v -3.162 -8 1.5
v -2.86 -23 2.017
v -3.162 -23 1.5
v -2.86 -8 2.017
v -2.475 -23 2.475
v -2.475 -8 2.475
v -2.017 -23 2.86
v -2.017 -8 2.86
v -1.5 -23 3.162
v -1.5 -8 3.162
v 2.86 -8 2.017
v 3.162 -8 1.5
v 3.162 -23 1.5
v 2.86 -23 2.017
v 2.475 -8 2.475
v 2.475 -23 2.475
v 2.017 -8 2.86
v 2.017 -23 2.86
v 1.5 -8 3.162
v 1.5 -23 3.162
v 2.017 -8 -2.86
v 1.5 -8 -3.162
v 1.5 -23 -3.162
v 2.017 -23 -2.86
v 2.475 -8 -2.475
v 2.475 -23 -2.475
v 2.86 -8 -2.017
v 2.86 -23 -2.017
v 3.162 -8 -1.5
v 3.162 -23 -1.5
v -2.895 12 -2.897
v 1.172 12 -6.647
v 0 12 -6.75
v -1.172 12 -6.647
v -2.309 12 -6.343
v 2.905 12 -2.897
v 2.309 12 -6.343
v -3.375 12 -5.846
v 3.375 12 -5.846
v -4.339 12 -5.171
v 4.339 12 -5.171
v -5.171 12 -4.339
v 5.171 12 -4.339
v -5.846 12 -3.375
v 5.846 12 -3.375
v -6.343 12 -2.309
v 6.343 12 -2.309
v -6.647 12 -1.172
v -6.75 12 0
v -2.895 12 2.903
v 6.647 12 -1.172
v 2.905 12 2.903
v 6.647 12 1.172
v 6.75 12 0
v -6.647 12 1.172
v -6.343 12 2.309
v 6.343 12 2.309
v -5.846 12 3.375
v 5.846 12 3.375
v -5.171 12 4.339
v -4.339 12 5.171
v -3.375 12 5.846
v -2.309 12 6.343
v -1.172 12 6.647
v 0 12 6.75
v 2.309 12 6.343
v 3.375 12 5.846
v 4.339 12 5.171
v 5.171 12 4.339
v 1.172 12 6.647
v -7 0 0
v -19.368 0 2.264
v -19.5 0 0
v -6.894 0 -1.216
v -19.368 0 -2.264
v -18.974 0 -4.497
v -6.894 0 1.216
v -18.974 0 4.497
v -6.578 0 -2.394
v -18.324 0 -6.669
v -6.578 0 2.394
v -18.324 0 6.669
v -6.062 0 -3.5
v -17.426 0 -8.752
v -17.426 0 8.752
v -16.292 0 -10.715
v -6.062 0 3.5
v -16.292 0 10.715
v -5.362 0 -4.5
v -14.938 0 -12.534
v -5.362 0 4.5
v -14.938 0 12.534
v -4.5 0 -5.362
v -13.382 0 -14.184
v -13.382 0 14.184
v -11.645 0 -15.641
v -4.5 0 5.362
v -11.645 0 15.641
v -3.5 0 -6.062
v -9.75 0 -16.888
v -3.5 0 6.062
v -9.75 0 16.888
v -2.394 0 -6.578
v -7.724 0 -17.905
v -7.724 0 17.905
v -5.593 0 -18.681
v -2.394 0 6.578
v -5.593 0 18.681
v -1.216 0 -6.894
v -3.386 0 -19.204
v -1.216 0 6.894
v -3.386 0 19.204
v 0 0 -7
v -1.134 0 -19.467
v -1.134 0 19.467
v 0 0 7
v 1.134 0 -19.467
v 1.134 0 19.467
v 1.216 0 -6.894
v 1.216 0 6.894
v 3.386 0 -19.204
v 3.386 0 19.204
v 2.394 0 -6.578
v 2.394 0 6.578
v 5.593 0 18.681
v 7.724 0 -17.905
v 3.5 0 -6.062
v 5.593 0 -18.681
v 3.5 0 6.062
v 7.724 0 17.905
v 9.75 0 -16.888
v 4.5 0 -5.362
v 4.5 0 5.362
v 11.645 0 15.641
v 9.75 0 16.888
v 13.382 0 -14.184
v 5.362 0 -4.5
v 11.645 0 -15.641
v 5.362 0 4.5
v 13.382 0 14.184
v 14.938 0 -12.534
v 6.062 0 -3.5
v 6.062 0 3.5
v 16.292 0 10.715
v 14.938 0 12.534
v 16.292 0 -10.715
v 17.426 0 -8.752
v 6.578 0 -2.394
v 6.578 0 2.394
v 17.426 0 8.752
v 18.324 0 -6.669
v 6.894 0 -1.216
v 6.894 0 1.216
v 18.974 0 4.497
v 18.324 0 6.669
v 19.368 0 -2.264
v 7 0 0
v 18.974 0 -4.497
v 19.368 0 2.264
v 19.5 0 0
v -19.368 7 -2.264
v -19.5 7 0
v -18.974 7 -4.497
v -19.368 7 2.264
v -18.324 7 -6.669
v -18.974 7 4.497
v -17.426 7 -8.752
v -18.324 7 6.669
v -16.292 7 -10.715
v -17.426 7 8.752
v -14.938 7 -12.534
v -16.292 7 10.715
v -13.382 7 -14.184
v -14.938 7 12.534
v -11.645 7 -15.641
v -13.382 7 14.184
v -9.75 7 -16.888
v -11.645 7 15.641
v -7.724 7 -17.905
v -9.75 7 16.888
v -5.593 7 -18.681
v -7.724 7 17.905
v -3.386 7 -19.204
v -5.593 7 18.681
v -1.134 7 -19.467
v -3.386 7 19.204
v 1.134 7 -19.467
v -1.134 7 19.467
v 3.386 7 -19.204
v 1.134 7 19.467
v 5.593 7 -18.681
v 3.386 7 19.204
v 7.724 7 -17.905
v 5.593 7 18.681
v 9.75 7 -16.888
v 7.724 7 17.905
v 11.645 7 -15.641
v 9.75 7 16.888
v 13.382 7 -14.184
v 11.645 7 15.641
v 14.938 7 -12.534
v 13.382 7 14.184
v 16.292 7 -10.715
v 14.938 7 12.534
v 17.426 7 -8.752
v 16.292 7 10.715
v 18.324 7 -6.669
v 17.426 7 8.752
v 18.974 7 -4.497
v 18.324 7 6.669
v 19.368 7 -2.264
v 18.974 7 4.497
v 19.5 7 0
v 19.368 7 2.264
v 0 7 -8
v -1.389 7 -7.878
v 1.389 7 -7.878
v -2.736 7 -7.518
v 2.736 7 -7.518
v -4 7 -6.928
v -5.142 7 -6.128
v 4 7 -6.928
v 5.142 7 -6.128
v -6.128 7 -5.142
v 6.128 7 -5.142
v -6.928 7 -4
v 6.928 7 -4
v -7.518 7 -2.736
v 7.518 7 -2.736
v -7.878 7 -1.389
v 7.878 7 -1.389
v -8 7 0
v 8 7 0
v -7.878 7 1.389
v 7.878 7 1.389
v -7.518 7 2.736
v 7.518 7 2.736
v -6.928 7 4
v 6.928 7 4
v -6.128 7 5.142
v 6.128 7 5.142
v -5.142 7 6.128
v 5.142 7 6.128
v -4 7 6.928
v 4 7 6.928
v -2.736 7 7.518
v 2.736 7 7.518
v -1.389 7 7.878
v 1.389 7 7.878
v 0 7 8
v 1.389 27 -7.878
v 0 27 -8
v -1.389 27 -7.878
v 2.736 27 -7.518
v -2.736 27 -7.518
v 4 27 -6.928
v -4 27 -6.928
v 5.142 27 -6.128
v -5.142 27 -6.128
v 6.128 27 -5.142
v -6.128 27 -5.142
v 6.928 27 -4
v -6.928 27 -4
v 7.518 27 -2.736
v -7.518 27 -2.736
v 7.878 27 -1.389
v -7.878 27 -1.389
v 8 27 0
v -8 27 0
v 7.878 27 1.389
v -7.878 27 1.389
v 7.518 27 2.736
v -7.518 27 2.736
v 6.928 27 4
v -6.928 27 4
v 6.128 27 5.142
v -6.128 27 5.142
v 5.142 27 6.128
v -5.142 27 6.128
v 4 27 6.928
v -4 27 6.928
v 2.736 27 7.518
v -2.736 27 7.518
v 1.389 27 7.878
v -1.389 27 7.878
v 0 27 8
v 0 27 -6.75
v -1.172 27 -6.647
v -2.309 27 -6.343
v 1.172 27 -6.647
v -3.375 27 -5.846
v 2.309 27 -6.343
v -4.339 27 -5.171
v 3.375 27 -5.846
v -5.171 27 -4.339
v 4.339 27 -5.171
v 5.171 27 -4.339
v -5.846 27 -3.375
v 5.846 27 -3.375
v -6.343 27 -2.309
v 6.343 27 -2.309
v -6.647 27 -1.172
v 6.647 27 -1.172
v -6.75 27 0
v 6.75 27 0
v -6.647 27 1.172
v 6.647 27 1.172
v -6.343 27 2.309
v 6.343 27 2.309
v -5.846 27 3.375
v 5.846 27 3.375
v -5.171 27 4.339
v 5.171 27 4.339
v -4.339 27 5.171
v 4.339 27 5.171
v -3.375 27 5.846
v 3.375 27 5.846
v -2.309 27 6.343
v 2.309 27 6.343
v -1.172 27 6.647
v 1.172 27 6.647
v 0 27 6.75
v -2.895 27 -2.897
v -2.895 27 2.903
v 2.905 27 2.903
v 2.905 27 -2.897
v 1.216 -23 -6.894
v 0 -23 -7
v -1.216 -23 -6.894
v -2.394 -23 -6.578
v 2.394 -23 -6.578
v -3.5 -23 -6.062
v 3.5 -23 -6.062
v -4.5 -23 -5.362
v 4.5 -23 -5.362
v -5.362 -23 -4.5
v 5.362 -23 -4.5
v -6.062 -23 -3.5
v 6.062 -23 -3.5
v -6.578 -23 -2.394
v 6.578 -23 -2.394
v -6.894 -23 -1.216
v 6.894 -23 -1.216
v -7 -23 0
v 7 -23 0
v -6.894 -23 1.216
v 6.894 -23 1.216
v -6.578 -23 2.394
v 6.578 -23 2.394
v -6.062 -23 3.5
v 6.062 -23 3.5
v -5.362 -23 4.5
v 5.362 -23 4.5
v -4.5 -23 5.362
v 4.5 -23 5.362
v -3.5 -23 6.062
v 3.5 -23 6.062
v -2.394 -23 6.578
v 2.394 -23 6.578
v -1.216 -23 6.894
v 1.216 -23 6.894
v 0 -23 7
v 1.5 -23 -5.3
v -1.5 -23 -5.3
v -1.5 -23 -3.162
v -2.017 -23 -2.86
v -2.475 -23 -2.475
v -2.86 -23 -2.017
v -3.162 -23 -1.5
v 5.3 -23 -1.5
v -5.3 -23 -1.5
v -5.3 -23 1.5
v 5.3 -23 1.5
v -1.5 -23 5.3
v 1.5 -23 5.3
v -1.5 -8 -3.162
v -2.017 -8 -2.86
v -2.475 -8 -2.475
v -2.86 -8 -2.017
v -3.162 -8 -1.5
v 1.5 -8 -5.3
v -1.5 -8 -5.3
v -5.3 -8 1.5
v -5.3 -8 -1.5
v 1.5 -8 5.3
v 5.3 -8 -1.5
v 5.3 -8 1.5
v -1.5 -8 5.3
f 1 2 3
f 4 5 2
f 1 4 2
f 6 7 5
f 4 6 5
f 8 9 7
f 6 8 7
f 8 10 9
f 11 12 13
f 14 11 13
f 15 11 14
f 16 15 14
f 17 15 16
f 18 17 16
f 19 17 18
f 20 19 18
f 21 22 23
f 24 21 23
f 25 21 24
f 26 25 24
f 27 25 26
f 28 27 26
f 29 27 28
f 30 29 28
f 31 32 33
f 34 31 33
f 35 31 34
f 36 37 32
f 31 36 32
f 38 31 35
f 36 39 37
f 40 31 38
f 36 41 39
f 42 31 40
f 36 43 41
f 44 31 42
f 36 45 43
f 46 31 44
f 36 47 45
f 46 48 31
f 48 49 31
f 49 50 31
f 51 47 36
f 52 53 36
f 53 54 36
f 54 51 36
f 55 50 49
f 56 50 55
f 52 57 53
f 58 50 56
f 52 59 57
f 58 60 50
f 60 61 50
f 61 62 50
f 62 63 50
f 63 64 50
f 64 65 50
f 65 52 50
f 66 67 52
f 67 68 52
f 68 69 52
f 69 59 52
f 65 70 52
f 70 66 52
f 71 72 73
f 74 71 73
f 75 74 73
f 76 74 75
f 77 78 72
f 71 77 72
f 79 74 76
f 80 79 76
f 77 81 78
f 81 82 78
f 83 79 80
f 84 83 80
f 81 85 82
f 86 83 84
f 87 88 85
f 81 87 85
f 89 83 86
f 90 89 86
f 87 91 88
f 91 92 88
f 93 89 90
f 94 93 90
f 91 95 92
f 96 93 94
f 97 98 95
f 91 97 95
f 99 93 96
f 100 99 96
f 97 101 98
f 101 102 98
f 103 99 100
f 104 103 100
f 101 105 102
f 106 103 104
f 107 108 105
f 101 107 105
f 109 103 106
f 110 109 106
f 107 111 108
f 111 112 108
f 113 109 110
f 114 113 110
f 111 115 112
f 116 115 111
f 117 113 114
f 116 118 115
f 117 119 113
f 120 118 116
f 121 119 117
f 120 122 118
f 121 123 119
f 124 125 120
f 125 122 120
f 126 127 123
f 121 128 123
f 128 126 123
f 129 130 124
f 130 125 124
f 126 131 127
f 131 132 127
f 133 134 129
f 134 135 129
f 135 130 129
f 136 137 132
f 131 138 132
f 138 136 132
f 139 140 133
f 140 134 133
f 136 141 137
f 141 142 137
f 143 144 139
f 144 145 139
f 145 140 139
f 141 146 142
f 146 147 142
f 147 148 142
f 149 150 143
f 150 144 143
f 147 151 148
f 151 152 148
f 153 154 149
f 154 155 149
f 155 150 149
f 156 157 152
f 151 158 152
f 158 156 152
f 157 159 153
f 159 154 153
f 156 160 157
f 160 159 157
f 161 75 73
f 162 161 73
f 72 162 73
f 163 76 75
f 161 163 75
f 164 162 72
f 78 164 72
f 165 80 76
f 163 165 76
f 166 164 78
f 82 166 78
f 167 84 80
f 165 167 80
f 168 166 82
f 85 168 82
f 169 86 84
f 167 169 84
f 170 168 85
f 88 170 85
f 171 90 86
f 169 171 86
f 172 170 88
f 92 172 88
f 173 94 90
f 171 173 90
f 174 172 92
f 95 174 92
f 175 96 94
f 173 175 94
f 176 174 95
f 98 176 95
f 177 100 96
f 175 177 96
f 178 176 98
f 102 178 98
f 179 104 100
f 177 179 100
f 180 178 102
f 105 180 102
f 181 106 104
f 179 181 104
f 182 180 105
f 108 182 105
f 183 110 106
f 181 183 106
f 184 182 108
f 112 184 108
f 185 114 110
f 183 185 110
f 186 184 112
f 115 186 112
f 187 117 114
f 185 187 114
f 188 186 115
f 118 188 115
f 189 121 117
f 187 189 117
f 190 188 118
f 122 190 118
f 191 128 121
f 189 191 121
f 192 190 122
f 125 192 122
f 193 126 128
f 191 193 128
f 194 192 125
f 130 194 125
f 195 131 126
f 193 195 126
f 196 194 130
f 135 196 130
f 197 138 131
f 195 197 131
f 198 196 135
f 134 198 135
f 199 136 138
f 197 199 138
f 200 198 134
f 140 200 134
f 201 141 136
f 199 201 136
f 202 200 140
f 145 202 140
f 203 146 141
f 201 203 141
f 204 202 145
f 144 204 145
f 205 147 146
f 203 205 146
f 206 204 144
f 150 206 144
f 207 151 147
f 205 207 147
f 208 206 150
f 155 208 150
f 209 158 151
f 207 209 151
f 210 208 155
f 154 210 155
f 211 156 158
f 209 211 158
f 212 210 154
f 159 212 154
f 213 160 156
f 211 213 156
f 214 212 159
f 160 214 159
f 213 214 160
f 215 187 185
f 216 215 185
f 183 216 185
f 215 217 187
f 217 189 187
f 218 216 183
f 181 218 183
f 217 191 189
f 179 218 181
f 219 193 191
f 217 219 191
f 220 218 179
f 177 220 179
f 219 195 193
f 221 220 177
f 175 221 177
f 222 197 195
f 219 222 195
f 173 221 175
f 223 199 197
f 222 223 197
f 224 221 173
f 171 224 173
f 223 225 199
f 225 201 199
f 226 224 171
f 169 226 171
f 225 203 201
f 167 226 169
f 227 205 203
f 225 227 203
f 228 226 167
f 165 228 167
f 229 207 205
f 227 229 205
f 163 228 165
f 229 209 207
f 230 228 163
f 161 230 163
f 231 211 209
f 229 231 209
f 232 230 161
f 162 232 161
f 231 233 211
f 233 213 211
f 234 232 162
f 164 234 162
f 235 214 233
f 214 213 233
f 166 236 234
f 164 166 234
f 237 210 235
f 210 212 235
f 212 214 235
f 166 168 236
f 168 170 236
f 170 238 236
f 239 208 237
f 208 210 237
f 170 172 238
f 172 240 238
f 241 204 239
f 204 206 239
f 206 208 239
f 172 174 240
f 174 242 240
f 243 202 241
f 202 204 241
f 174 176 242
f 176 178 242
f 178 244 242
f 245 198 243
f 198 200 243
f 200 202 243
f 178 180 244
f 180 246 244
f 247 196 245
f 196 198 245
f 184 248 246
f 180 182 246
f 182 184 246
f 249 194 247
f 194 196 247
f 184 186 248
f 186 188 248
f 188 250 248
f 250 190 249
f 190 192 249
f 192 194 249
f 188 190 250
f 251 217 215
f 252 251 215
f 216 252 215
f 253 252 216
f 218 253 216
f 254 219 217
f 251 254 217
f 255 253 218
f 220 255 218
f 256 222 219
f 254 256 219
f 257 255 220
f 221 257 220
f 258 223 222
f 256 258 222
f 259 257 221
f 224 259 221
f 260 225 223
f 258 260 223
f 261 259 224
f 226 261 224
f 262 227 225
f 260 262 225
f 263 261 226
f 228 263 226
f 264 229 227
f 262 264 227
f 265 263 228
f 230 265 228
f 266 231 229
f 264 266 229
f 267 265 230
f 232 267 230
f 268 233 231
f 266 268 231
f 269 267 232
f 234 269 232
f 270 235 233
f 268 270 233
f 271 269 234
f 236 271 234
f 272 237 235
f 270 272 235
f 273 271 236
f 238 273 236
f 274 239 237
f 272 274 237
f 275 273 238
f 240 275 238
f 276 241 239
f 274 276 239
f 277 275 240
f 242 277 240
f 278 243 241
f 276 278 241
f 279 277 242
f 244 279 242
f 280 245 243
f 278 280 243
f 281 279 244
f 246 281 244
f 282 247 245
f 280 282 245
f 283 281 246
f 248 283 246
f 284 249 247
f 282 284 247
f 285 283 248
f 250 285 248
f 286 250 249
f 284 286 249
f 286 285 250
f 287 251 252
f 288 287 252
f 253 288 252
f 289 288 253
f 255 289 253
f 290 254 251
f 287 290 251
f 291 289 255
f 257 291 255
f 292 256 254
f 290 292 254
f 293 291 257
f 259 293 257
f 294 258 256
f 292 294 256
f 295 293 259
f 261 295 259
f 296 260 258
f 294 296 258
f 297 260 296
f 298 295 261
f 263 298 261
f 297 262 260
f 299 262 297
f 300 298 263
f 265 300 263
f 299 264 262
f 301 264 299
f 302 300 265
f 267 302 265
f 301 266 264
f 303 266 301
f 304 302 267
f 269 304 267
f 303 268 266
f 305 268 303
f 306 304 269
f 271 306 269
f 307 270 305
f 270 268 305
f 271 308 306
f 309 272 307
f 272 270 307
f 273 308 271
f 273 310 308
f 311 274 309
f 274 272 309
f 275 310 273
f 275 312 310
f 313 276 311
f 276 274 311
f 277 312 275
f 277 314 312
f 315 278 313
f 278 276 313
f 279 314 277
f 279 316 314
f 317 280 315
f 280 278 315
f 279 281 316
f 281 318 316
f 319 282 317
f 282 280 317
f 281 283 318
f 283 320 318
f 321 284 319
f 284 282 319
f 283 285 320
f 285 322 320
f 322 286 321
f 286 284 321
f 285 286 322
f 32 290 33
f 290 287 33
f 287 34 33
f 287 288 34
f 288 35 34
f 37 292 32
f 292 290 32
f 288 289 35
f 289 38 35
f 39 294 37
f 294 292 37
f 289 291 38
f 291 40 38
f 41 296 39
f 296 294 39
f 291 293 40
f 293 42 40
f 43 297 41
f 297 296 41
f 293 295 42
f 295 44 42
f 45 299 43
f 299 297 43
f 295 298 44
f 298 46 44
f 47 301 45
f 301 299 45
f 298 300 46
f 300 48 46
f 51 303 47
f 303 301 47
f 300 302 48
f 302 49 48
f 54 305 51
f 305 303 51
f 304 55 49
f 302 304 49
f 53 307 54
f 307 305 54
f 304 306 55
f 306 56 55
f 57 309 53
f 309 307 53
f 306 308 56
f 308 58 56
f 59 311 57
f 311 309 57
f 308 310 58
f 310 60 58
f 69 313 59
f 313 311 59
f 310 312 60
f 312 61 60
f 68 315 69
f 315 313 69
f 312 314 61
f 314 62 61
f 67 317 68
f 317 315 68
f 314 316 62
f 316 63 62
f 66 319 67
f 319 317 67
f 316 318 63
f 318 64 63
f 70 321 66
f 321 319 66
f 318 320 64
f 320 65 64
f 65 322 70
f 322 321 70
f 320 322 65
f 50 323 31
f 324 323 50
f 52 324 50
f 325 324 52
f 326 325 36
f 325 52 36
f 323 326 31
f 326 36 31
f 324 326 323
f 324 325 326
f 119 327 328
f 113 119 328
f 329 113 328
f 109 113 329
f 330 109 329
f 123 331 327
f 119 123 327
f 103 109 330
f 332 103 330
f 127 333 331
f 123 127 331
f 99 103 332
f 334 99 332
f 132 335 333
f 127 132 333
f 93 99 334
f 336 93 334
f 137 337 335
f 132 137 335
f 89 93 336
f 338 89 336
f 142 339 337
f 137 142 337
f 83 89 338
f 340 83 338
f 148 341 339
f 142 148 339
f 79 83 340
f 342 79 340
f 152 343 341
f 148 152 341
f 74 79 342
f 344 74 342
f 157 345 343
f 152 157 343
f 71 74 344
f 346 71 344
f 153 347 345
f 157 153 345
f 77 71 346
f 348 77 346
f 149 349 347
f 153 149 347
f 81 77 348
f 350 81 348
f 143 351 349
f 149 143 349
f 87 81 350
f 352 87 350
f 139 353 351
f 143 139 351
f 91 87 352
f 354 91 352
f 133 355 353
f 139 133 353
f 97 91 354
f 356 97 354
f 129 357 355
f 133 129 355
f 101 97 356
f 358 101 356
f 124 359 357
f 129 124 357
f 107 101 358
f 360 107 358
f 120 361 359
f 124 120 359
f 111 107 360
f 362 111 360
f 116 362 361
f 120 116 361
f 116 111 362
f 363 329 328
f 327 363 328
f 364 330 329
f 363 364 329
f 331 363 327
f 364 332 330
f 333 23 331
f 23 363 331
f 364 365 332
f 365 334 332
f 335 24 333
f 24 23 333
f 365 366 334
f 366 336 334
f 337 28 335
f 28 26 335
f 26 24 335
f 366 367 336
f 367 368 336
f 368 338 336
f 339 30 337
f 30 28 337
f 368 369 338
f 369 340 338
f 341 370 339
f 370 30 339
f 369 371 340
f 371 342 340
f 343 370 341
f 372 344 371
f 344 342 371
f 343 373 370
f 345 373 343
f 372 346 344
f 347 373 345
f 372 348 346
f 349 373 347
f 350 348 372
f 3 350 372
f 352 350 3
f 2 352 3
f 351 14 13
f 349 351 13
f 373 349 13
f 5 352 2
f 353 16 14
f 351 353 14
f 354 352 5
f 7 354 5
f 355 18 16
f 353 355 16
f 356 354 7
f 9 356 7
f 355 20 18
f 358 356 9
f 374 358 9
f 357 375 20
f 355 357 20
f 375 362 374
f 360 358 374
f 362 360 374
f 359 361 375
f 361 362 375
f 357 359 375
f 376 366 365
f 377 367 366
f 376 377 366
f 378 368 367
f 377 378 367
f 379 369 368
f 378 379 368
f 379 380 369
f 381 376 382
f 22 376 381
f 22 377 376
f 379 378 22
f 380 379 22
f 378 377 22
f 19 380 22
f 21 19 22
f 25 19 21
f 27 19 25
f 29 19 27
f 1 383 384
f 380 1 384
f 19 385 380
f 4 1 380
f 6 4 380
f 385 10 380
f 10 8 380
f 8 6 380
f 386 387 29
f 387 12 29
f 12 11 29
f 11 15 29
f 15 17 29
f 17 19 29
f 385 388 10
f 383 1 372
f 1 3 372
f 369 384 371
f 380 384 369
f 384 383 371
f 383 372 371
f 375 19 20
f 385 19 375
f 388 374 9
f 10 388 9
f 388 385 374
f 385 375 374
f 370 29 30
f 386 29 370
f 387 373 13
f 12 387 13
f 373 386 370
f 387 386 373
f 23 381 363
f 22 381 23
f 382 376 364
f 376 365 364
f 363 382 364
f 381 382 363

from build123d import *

# Parameters (mm, degrees)
SKETCH3_R           = 6.75
CUT_EXTRUDE1_DEPTH  = 15
SKETCH4_W           = 5.8
SKETCH4_H           = 5.8
BOSS_EXTRUDE1_DEPTH = 15
SKETCH6_R           = 7
BOSS_EXTRUDE2_DEPTH = 23
SKETCH7_R           = 3.5
CUT_EXTRUDE2_DEPTH  = 15
CUT_EXTRUDE3_DEPTH  = 15


with BuildPart() as part:
    # Sketch2 → Revolve2 (revolve)
    with BuildSketch(Plane.XY):
        Polygon((19.5, 0), (19.5, 7), (8, 7), (8, 27), (0, 27), (0, 0), align=None)
    revolve(axis=Axis((0, 96.27972973, 0), (0, -1, 0)))

    # Sketch3 → Cut-Extrude1 (cut)
    with BuildSketch(Plane(origin=(0, 27, 0), x_dir=(1, 0, 0), z_dir=(0, 1, 0))):
        Circle(SKETCH3_R)
    extrude(amount=-CUT_EXTRUDE1_DEPTH, mode=Mode.SUBTRACT)

    # Sketch4 → Boss-Extrude1 (add)
    with BuildSketch(Plane(origin=(0, 12, 0), x_dir=(1, 0, 0), z_dir=(0, 1, 0))):
        with Locations((0.004761868, -0.002625461)):
            Rectangle(SKETCH4_W, SKETCH4_H)
    extrude(amount=BOSS_EXTRUDE1_DEPTH)

    # Sketch6 → Boss-Extrude2 (add)
    with BuildSketch(Plane.XZ):
        Circle(SKETCH6_R)
    extrude(amount=BOSS_EXTRUDE2_DEPTH)

    # Sketch7 → Cut-Extrude2 (cut)
    with BuildSketch(Plane.XZ.offset(23)):
        Circle(SKETCH7_R)
    extrude(amount=-CUT_EXTRUDE2_DEPTH, mode=Mode.SUBTRACT)

    # Sketch8 → Cut-Extrude3 (cut)
    with BuildSketch(Plane.XZ.offset(23)):
        Polygon((-5.3, 1.5), (-1.5, 1.5), (-1.5, 5.3), (1.5, 5.3), (1.5, 1.5), (5.3, 1.5), (5.3, -1.5), (1.5, -1.5), (1.5, -5.3), (-1.5, -5.3), (-1.5, -1.5), (-5.3, -1.5), align=None)
    extrude(amount=-CUT_EXTRUDE3_DEPTH, mode=Mode.SUBTRACT)


solid = part.part
